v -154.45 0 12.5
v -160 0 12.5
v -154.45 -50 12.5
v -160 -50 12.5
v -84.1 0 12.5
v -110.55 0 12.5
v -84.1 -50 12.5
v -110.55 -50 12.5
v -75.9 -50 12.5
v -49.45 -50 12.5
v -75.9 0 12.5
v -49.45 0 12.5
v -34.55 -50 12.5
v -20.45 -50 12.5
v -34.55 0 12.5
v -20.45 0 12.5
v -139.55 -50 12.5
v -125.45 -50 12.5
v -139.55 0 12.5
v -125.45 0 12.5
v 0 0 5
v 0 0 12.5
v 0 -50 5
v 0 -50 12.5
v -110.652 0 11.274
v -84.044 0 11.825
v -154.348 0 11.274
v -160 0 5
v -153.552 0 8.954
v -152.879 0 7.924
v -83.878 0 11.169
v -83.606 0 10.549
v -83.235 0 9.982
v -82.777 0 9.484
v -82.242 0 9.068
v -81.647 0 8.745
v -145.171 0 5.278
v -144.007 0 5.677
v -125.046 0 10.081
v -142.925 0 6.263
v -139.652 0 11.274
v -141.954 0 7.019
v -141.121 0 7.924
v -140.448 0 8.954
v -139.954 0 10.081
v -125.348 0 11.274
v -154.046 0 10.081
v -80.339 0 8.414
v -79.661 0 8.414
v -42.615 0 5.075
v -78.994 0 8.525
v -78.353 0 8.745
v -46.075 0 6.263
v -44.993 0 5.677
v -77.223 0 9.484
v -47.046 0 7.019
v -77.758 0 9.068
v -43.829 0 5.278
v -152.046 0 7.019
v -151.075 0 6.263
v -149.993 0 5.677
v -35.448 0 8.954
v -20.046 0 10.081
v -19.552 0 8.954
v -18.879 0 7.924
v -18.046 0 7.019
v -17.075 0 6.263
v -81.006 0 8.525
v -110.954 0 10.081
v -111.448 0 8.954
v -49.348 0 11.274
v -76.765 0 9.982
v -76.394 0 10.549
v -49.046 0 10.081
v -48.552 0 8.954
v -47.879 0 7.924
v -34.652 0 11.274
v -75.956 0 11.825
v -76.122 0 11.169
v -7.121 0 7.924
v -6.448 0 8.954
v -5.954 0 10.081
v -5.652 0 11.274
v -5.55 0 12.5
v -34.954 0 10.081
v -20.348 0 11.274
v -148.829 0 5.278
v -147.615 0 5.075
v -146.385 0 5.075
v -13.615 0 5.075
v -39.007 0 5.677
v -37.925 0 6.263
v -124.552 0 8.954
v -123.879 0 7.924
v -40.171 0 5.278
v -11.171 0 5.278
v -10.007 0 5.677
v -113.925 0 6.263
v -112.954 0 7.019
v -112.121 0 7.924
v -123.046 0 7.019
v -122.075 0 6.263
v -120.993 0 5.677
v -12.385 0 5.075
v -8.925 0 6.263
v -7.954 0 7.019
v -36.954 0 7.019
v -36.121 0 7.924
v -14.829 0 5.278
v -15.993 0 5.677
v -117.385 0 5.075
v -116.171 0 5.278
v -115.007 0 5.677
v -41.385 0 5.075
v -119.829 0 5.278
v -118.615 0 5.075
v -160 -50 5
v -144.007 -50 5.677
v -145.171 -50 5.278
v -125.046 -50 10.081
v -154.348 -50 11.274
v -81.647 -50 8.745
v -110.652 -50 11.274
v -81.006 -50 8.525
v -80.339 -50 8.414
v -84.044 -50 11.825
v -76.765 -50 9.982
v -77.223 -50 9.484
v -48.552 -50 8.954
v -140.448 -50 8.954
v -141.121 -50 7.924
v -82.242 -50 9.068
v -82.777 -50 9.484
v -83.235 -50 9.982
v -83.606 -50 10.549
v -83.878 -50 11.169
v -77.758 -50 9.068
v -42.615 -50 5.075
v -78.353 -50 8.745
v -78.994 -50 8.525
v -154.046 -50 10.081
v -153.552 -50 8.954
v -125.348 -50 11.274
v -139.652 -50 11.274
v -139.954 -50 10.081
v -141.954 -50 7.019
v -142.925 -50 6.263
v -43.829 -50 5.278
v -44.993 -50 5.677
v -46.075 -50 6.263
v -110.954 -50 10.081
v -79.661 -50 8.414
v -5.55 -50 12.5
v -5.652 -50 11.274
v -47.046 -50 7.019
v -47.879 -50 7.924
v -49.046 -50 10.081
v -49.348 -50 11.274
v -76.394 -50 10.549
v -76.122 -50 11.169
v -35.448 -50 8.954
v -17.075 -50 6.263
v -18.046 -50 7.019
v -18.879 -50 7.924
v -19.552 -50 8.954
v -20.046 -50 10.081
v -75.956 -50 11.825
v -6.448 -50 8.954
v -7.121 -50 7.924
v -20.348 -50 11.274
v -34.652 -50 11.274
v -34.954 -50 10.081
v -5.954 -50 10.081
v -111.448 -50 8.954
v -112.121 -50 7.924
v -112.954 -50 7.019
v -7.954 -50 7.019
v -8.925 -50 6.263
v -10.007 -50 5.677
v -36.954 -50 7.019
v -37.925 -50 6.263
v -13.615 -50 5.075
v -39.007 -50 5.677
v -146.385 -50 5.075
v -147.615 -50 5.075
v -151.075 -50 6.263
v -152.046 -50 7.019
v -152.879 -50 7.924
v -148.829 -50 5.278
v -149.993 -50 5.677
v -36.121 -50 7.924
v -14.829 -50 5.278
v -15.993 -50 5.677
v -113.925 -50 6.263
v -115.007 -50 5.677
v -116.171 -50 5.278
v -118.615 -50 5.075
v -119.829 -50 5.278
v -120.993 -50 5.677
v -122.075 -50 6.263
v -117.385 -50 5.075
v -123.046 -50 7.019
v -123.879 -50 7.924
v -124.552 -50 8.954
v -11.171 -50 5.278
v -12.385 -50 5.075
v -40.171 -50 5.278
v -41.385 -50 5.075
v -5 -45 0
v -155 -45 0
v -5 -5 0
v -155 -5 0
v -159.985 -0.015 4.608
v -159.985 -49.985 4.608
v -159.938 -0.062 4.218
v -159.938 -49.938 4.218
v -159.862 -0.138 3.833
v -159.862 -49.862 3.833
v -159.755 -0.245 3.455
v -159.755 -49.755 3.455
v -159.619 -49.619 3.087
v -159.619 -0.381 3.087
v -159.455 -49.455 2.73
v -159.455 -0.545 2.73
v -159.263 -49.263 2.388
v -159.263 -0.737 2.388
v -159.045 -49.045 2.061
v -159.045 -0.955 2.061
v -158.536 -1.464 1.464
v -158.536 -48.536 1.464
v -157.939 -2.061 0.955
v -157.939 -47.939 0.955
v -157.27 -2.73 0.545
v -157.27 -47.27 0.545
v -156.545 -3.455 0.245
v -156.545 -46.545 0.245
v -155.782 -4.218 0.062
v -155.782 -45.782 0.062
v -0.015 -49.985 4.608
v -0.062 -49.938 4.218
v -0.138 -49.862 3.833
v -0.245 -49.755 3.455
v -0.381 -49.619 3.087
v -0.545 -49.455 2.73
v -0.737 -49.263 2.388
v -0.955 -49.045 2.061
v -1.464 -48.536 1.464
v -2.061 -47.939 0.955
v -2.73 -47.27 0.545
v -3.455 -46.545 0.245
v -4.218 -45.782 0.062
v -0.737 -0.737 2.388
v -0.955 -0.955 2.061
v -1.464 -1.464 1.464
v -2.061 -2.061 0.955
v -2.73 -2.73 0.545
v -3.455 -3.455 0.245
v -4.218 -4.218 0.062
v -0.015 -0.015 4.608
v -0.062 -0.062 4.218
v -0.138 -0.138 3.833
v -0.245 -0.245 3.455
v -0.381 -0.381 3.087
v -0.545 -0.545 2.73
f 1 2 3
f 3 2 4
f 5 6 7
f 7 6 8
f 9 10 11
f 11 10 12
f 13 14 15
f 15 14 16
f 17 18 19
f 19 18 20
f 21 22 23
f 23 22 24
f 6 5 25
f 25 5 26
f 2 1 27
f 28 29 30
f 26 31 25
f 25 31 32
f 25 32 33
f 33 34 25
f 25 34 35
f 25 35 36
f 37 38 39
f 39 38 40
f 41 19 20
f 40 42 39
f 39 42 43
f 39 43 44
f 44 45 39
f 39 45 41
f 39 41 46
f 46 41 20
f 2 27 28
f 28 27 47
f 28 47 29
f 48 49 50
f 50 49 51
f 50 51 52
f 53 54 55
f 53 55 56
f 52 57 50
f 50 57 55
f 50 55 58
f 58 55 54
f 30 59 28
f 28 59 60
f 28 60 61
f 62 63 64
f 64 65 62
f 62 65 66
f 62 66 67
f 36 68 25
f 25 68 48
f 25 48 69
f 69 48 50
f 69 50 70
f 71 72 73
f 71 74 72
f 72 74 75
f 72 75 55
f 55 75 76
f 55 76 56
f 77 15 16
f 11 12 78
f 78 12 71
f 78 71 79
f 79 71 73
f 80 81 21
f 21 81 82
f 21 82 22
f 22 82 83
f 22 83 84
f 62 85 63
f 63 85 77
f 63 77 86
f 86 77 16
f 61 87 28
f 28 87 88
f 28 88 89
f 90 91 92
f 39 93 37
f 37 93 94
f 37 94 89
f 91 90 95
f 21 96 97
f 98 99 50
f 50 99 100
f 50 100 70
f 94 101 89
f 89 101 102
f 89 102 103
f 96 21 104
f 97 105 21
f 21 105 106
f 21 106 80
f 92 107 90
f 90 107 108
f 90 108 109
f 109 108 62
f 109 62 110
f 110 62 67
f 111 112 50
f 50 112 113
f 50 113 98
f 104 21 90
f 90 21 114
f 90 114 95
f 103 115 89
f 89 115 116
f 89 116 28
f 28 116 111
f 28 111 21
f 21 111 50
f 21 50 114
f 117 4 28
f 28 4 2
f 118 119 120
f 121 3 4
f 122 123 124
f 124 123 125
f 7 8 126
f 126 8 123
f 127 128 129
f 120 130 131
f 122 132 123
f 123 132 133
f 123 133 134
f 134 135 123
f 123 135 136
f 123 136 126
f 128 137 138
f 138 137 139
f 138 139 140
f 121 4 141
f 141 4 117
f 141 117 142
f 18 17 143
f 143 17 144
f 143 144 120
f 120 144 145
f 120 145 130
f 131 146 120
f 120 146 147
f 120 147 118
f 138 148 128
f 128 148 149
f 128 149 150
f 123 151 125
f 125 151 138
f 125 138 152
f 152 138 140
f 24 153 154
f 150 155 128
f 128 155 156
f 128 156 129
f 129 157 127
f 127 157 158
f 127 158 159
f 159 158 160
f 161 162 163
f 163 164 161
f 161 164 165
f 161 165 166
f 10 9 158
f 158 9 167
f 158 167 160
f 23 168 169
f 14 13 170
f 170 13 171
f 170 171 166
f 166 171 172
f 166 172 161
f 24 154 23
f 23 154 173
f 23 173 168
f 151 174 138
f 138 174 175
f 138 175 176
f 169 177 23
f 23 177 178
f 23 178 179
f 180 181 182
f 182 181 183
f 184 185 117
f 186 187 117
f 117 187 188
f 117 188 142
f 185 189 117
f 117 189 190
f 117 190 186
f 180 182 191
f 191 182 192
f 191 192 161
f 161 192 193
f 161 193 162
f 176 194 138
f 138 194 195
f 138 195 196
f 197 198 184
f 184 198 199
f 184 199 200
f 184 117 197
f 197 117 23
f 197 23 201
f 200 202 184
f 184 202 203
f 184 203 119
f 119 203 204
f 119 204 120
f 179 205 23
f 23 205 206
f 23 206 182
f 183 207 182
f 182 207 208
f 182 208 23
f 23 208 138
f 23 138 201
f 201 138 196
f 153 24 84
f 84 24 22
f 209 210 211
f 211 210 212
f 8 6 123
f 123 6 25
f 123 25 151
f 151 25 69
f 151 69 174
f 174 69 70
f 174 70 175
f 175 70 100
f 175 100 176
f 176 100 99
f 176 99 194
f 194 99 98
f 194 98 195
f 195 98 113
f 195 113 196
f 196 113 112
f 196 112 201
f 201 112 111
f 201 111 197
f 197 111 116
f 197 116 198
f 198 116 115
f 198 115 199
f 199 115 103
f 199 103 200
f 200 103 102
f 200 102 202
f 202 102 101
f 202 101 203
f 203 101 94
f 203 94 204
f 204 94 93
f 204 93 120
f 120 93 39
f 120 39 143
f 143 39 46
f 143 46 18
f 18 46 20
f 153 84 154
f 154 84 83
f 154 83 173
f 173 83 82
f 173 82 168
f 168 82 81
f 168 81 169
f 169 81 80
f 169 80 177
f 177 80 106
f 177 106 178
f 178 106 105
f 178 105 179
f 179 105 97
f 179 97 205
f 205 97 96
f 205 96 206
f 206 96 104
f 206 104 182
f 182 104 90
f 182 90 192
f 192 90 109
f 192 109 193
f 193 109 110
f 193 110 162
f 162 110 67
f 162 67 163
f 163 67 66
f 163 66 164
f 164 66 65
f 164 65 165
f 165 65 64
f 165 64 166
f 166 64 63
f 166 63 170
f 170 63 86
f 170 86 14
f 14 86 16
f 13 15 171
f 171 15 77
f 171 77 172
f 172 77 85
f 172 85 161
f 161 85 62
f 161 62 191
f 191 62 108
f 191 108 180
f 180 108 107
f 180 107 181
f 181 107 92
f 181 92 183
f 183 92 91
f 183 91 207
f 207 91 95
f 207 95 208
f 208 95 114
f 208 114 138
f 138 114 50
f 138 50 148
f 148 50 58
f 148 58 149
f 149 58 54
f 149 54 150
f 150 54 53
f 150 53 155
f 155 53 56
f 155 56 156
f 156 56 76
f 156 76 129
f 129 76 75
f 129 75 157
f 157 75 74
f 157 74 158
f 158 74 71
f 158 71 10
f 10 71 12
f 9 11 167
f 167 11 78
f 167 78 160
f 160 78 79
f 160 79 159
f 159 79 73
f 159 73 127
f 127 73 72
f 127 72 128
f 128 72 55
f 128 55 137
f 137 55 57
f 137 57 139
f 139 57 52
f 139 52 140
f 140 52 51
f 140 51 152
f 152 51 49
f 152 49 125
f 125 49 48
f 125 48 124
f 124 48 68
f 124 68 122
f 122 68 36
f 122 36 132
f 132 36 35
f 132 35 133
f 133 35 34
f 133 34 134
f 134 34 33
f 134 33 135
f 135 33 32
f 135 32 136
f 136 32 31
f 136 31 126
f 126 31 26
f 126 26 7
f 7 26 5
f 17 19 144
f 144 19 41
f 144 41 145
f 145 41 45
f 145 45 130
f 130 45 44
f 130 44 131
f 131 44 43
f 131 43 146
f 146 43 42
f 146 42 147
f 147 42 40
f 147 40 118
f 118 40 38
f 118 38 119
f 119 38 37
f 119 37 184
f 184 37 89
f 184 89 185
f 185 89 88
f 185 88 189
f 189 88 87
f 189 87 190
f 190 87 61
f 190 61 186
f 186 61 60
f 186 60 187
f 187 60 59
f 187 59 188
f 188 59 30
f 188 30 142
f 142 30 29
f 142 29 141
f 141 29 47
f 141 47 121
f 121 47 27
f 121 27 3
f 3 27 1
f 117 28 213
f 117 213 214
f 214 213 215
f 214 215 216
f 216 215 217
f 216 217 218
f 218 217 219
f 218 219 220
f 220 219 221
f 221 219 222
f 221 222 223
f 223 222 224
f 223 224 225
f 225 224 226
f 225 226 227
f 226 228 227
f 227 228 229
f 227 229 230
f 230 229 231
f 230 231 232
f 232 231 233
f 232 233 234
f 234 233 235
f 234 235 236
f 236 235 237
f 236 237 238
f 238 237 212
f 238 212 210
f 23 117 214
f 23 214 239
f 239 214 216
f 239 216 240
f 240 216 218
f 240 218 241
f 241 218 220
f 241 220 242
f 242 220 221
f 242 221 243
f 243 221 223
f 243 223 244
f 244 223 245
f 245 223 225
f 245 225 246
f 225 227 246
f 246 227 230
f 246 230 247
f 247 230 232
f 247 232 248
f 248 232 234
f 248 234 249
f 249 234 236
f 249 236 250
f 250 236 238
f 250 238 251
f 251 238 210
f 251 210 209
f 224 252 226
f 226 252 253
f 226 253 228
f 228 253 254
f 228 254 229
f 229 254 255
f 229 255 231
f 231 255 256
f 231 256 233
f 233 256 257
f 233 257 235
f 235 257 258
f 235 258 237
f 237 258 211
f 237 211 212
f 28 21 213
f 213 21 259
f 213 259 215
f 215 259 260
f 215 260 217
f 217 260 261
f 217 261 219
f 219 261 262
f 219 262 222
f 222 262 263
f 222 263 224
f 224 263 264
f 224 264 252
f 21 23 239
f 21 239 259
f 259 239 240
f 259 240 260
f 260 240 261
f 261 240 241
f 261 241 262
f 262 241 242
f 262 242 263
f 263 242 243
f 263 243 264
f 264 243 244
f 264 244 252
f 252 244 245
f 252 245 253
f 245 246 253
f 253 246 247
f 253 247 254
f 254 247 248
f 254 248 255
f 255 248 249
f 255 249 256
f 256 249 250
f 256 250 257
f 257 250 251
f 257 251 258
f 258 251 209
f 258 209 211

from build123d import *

# Parameters (mm, degrees)
ESQUISSE1_W             = 160
ESQUISSE1_H             = 50
BOSS_EXTRU_1_DEPTH      = 12.5
ESQUISSE2_R             = 7.45
ESQUISSE2_R_2           = 4.1
ENL_V_MAT_EXTRU_1_DEPTH = 169.09595474
CONG_1_R                = 5


with BuildPart() as part:
    # Esquisse1 → Boss.-Extru.1 (new body)
    with BuildSketch(Plane.XY):
        with Locations((-80, -25)):
            Rectangle(ESQUISSE1_W, ESQUISSE1_H)
    extrude(amount=BOSS_EXTRU_1_DEPTH)

    # Esquisse2 → Enlèv. mat.-Extru.1 (cut, through all)
    with BuildSketch(Plane(origin=(0, 0, 0), x_dir=(1, 0, 0), z_dir=(0, 1, 0))):
        with Locations((-147, -12.5)):
            Circle(ESQUISSE2_R)
        with Locations((-118, -12.5)):
            Circle(ESQUISSE2_R)
        with Locations((-13, -12.5)):
            Circle(ESQUISSE2_R)
        with Locations((-42, -12.5)):
            Circle(ESQUISSE2_R)
        with Locations((-80, -12.5)):
            Circle(ESQUISSE2_R_2)
    extrude(amount=-ENL_V_MAT_EXTRU_1_DEPTH, mode=Mode.SUBTRACT)

    # Congé1
    cong_1_edges = [part.edges().sort_by_distance(p)[0] for p in [
        (-80, -50, 0),
        (-160, -25, 0),
        (-80, 0, 0),
        (0, -25, 0),
    ]]
    fillet(cong_1_edges, radius=CONG_1_R)


solid = part.part
